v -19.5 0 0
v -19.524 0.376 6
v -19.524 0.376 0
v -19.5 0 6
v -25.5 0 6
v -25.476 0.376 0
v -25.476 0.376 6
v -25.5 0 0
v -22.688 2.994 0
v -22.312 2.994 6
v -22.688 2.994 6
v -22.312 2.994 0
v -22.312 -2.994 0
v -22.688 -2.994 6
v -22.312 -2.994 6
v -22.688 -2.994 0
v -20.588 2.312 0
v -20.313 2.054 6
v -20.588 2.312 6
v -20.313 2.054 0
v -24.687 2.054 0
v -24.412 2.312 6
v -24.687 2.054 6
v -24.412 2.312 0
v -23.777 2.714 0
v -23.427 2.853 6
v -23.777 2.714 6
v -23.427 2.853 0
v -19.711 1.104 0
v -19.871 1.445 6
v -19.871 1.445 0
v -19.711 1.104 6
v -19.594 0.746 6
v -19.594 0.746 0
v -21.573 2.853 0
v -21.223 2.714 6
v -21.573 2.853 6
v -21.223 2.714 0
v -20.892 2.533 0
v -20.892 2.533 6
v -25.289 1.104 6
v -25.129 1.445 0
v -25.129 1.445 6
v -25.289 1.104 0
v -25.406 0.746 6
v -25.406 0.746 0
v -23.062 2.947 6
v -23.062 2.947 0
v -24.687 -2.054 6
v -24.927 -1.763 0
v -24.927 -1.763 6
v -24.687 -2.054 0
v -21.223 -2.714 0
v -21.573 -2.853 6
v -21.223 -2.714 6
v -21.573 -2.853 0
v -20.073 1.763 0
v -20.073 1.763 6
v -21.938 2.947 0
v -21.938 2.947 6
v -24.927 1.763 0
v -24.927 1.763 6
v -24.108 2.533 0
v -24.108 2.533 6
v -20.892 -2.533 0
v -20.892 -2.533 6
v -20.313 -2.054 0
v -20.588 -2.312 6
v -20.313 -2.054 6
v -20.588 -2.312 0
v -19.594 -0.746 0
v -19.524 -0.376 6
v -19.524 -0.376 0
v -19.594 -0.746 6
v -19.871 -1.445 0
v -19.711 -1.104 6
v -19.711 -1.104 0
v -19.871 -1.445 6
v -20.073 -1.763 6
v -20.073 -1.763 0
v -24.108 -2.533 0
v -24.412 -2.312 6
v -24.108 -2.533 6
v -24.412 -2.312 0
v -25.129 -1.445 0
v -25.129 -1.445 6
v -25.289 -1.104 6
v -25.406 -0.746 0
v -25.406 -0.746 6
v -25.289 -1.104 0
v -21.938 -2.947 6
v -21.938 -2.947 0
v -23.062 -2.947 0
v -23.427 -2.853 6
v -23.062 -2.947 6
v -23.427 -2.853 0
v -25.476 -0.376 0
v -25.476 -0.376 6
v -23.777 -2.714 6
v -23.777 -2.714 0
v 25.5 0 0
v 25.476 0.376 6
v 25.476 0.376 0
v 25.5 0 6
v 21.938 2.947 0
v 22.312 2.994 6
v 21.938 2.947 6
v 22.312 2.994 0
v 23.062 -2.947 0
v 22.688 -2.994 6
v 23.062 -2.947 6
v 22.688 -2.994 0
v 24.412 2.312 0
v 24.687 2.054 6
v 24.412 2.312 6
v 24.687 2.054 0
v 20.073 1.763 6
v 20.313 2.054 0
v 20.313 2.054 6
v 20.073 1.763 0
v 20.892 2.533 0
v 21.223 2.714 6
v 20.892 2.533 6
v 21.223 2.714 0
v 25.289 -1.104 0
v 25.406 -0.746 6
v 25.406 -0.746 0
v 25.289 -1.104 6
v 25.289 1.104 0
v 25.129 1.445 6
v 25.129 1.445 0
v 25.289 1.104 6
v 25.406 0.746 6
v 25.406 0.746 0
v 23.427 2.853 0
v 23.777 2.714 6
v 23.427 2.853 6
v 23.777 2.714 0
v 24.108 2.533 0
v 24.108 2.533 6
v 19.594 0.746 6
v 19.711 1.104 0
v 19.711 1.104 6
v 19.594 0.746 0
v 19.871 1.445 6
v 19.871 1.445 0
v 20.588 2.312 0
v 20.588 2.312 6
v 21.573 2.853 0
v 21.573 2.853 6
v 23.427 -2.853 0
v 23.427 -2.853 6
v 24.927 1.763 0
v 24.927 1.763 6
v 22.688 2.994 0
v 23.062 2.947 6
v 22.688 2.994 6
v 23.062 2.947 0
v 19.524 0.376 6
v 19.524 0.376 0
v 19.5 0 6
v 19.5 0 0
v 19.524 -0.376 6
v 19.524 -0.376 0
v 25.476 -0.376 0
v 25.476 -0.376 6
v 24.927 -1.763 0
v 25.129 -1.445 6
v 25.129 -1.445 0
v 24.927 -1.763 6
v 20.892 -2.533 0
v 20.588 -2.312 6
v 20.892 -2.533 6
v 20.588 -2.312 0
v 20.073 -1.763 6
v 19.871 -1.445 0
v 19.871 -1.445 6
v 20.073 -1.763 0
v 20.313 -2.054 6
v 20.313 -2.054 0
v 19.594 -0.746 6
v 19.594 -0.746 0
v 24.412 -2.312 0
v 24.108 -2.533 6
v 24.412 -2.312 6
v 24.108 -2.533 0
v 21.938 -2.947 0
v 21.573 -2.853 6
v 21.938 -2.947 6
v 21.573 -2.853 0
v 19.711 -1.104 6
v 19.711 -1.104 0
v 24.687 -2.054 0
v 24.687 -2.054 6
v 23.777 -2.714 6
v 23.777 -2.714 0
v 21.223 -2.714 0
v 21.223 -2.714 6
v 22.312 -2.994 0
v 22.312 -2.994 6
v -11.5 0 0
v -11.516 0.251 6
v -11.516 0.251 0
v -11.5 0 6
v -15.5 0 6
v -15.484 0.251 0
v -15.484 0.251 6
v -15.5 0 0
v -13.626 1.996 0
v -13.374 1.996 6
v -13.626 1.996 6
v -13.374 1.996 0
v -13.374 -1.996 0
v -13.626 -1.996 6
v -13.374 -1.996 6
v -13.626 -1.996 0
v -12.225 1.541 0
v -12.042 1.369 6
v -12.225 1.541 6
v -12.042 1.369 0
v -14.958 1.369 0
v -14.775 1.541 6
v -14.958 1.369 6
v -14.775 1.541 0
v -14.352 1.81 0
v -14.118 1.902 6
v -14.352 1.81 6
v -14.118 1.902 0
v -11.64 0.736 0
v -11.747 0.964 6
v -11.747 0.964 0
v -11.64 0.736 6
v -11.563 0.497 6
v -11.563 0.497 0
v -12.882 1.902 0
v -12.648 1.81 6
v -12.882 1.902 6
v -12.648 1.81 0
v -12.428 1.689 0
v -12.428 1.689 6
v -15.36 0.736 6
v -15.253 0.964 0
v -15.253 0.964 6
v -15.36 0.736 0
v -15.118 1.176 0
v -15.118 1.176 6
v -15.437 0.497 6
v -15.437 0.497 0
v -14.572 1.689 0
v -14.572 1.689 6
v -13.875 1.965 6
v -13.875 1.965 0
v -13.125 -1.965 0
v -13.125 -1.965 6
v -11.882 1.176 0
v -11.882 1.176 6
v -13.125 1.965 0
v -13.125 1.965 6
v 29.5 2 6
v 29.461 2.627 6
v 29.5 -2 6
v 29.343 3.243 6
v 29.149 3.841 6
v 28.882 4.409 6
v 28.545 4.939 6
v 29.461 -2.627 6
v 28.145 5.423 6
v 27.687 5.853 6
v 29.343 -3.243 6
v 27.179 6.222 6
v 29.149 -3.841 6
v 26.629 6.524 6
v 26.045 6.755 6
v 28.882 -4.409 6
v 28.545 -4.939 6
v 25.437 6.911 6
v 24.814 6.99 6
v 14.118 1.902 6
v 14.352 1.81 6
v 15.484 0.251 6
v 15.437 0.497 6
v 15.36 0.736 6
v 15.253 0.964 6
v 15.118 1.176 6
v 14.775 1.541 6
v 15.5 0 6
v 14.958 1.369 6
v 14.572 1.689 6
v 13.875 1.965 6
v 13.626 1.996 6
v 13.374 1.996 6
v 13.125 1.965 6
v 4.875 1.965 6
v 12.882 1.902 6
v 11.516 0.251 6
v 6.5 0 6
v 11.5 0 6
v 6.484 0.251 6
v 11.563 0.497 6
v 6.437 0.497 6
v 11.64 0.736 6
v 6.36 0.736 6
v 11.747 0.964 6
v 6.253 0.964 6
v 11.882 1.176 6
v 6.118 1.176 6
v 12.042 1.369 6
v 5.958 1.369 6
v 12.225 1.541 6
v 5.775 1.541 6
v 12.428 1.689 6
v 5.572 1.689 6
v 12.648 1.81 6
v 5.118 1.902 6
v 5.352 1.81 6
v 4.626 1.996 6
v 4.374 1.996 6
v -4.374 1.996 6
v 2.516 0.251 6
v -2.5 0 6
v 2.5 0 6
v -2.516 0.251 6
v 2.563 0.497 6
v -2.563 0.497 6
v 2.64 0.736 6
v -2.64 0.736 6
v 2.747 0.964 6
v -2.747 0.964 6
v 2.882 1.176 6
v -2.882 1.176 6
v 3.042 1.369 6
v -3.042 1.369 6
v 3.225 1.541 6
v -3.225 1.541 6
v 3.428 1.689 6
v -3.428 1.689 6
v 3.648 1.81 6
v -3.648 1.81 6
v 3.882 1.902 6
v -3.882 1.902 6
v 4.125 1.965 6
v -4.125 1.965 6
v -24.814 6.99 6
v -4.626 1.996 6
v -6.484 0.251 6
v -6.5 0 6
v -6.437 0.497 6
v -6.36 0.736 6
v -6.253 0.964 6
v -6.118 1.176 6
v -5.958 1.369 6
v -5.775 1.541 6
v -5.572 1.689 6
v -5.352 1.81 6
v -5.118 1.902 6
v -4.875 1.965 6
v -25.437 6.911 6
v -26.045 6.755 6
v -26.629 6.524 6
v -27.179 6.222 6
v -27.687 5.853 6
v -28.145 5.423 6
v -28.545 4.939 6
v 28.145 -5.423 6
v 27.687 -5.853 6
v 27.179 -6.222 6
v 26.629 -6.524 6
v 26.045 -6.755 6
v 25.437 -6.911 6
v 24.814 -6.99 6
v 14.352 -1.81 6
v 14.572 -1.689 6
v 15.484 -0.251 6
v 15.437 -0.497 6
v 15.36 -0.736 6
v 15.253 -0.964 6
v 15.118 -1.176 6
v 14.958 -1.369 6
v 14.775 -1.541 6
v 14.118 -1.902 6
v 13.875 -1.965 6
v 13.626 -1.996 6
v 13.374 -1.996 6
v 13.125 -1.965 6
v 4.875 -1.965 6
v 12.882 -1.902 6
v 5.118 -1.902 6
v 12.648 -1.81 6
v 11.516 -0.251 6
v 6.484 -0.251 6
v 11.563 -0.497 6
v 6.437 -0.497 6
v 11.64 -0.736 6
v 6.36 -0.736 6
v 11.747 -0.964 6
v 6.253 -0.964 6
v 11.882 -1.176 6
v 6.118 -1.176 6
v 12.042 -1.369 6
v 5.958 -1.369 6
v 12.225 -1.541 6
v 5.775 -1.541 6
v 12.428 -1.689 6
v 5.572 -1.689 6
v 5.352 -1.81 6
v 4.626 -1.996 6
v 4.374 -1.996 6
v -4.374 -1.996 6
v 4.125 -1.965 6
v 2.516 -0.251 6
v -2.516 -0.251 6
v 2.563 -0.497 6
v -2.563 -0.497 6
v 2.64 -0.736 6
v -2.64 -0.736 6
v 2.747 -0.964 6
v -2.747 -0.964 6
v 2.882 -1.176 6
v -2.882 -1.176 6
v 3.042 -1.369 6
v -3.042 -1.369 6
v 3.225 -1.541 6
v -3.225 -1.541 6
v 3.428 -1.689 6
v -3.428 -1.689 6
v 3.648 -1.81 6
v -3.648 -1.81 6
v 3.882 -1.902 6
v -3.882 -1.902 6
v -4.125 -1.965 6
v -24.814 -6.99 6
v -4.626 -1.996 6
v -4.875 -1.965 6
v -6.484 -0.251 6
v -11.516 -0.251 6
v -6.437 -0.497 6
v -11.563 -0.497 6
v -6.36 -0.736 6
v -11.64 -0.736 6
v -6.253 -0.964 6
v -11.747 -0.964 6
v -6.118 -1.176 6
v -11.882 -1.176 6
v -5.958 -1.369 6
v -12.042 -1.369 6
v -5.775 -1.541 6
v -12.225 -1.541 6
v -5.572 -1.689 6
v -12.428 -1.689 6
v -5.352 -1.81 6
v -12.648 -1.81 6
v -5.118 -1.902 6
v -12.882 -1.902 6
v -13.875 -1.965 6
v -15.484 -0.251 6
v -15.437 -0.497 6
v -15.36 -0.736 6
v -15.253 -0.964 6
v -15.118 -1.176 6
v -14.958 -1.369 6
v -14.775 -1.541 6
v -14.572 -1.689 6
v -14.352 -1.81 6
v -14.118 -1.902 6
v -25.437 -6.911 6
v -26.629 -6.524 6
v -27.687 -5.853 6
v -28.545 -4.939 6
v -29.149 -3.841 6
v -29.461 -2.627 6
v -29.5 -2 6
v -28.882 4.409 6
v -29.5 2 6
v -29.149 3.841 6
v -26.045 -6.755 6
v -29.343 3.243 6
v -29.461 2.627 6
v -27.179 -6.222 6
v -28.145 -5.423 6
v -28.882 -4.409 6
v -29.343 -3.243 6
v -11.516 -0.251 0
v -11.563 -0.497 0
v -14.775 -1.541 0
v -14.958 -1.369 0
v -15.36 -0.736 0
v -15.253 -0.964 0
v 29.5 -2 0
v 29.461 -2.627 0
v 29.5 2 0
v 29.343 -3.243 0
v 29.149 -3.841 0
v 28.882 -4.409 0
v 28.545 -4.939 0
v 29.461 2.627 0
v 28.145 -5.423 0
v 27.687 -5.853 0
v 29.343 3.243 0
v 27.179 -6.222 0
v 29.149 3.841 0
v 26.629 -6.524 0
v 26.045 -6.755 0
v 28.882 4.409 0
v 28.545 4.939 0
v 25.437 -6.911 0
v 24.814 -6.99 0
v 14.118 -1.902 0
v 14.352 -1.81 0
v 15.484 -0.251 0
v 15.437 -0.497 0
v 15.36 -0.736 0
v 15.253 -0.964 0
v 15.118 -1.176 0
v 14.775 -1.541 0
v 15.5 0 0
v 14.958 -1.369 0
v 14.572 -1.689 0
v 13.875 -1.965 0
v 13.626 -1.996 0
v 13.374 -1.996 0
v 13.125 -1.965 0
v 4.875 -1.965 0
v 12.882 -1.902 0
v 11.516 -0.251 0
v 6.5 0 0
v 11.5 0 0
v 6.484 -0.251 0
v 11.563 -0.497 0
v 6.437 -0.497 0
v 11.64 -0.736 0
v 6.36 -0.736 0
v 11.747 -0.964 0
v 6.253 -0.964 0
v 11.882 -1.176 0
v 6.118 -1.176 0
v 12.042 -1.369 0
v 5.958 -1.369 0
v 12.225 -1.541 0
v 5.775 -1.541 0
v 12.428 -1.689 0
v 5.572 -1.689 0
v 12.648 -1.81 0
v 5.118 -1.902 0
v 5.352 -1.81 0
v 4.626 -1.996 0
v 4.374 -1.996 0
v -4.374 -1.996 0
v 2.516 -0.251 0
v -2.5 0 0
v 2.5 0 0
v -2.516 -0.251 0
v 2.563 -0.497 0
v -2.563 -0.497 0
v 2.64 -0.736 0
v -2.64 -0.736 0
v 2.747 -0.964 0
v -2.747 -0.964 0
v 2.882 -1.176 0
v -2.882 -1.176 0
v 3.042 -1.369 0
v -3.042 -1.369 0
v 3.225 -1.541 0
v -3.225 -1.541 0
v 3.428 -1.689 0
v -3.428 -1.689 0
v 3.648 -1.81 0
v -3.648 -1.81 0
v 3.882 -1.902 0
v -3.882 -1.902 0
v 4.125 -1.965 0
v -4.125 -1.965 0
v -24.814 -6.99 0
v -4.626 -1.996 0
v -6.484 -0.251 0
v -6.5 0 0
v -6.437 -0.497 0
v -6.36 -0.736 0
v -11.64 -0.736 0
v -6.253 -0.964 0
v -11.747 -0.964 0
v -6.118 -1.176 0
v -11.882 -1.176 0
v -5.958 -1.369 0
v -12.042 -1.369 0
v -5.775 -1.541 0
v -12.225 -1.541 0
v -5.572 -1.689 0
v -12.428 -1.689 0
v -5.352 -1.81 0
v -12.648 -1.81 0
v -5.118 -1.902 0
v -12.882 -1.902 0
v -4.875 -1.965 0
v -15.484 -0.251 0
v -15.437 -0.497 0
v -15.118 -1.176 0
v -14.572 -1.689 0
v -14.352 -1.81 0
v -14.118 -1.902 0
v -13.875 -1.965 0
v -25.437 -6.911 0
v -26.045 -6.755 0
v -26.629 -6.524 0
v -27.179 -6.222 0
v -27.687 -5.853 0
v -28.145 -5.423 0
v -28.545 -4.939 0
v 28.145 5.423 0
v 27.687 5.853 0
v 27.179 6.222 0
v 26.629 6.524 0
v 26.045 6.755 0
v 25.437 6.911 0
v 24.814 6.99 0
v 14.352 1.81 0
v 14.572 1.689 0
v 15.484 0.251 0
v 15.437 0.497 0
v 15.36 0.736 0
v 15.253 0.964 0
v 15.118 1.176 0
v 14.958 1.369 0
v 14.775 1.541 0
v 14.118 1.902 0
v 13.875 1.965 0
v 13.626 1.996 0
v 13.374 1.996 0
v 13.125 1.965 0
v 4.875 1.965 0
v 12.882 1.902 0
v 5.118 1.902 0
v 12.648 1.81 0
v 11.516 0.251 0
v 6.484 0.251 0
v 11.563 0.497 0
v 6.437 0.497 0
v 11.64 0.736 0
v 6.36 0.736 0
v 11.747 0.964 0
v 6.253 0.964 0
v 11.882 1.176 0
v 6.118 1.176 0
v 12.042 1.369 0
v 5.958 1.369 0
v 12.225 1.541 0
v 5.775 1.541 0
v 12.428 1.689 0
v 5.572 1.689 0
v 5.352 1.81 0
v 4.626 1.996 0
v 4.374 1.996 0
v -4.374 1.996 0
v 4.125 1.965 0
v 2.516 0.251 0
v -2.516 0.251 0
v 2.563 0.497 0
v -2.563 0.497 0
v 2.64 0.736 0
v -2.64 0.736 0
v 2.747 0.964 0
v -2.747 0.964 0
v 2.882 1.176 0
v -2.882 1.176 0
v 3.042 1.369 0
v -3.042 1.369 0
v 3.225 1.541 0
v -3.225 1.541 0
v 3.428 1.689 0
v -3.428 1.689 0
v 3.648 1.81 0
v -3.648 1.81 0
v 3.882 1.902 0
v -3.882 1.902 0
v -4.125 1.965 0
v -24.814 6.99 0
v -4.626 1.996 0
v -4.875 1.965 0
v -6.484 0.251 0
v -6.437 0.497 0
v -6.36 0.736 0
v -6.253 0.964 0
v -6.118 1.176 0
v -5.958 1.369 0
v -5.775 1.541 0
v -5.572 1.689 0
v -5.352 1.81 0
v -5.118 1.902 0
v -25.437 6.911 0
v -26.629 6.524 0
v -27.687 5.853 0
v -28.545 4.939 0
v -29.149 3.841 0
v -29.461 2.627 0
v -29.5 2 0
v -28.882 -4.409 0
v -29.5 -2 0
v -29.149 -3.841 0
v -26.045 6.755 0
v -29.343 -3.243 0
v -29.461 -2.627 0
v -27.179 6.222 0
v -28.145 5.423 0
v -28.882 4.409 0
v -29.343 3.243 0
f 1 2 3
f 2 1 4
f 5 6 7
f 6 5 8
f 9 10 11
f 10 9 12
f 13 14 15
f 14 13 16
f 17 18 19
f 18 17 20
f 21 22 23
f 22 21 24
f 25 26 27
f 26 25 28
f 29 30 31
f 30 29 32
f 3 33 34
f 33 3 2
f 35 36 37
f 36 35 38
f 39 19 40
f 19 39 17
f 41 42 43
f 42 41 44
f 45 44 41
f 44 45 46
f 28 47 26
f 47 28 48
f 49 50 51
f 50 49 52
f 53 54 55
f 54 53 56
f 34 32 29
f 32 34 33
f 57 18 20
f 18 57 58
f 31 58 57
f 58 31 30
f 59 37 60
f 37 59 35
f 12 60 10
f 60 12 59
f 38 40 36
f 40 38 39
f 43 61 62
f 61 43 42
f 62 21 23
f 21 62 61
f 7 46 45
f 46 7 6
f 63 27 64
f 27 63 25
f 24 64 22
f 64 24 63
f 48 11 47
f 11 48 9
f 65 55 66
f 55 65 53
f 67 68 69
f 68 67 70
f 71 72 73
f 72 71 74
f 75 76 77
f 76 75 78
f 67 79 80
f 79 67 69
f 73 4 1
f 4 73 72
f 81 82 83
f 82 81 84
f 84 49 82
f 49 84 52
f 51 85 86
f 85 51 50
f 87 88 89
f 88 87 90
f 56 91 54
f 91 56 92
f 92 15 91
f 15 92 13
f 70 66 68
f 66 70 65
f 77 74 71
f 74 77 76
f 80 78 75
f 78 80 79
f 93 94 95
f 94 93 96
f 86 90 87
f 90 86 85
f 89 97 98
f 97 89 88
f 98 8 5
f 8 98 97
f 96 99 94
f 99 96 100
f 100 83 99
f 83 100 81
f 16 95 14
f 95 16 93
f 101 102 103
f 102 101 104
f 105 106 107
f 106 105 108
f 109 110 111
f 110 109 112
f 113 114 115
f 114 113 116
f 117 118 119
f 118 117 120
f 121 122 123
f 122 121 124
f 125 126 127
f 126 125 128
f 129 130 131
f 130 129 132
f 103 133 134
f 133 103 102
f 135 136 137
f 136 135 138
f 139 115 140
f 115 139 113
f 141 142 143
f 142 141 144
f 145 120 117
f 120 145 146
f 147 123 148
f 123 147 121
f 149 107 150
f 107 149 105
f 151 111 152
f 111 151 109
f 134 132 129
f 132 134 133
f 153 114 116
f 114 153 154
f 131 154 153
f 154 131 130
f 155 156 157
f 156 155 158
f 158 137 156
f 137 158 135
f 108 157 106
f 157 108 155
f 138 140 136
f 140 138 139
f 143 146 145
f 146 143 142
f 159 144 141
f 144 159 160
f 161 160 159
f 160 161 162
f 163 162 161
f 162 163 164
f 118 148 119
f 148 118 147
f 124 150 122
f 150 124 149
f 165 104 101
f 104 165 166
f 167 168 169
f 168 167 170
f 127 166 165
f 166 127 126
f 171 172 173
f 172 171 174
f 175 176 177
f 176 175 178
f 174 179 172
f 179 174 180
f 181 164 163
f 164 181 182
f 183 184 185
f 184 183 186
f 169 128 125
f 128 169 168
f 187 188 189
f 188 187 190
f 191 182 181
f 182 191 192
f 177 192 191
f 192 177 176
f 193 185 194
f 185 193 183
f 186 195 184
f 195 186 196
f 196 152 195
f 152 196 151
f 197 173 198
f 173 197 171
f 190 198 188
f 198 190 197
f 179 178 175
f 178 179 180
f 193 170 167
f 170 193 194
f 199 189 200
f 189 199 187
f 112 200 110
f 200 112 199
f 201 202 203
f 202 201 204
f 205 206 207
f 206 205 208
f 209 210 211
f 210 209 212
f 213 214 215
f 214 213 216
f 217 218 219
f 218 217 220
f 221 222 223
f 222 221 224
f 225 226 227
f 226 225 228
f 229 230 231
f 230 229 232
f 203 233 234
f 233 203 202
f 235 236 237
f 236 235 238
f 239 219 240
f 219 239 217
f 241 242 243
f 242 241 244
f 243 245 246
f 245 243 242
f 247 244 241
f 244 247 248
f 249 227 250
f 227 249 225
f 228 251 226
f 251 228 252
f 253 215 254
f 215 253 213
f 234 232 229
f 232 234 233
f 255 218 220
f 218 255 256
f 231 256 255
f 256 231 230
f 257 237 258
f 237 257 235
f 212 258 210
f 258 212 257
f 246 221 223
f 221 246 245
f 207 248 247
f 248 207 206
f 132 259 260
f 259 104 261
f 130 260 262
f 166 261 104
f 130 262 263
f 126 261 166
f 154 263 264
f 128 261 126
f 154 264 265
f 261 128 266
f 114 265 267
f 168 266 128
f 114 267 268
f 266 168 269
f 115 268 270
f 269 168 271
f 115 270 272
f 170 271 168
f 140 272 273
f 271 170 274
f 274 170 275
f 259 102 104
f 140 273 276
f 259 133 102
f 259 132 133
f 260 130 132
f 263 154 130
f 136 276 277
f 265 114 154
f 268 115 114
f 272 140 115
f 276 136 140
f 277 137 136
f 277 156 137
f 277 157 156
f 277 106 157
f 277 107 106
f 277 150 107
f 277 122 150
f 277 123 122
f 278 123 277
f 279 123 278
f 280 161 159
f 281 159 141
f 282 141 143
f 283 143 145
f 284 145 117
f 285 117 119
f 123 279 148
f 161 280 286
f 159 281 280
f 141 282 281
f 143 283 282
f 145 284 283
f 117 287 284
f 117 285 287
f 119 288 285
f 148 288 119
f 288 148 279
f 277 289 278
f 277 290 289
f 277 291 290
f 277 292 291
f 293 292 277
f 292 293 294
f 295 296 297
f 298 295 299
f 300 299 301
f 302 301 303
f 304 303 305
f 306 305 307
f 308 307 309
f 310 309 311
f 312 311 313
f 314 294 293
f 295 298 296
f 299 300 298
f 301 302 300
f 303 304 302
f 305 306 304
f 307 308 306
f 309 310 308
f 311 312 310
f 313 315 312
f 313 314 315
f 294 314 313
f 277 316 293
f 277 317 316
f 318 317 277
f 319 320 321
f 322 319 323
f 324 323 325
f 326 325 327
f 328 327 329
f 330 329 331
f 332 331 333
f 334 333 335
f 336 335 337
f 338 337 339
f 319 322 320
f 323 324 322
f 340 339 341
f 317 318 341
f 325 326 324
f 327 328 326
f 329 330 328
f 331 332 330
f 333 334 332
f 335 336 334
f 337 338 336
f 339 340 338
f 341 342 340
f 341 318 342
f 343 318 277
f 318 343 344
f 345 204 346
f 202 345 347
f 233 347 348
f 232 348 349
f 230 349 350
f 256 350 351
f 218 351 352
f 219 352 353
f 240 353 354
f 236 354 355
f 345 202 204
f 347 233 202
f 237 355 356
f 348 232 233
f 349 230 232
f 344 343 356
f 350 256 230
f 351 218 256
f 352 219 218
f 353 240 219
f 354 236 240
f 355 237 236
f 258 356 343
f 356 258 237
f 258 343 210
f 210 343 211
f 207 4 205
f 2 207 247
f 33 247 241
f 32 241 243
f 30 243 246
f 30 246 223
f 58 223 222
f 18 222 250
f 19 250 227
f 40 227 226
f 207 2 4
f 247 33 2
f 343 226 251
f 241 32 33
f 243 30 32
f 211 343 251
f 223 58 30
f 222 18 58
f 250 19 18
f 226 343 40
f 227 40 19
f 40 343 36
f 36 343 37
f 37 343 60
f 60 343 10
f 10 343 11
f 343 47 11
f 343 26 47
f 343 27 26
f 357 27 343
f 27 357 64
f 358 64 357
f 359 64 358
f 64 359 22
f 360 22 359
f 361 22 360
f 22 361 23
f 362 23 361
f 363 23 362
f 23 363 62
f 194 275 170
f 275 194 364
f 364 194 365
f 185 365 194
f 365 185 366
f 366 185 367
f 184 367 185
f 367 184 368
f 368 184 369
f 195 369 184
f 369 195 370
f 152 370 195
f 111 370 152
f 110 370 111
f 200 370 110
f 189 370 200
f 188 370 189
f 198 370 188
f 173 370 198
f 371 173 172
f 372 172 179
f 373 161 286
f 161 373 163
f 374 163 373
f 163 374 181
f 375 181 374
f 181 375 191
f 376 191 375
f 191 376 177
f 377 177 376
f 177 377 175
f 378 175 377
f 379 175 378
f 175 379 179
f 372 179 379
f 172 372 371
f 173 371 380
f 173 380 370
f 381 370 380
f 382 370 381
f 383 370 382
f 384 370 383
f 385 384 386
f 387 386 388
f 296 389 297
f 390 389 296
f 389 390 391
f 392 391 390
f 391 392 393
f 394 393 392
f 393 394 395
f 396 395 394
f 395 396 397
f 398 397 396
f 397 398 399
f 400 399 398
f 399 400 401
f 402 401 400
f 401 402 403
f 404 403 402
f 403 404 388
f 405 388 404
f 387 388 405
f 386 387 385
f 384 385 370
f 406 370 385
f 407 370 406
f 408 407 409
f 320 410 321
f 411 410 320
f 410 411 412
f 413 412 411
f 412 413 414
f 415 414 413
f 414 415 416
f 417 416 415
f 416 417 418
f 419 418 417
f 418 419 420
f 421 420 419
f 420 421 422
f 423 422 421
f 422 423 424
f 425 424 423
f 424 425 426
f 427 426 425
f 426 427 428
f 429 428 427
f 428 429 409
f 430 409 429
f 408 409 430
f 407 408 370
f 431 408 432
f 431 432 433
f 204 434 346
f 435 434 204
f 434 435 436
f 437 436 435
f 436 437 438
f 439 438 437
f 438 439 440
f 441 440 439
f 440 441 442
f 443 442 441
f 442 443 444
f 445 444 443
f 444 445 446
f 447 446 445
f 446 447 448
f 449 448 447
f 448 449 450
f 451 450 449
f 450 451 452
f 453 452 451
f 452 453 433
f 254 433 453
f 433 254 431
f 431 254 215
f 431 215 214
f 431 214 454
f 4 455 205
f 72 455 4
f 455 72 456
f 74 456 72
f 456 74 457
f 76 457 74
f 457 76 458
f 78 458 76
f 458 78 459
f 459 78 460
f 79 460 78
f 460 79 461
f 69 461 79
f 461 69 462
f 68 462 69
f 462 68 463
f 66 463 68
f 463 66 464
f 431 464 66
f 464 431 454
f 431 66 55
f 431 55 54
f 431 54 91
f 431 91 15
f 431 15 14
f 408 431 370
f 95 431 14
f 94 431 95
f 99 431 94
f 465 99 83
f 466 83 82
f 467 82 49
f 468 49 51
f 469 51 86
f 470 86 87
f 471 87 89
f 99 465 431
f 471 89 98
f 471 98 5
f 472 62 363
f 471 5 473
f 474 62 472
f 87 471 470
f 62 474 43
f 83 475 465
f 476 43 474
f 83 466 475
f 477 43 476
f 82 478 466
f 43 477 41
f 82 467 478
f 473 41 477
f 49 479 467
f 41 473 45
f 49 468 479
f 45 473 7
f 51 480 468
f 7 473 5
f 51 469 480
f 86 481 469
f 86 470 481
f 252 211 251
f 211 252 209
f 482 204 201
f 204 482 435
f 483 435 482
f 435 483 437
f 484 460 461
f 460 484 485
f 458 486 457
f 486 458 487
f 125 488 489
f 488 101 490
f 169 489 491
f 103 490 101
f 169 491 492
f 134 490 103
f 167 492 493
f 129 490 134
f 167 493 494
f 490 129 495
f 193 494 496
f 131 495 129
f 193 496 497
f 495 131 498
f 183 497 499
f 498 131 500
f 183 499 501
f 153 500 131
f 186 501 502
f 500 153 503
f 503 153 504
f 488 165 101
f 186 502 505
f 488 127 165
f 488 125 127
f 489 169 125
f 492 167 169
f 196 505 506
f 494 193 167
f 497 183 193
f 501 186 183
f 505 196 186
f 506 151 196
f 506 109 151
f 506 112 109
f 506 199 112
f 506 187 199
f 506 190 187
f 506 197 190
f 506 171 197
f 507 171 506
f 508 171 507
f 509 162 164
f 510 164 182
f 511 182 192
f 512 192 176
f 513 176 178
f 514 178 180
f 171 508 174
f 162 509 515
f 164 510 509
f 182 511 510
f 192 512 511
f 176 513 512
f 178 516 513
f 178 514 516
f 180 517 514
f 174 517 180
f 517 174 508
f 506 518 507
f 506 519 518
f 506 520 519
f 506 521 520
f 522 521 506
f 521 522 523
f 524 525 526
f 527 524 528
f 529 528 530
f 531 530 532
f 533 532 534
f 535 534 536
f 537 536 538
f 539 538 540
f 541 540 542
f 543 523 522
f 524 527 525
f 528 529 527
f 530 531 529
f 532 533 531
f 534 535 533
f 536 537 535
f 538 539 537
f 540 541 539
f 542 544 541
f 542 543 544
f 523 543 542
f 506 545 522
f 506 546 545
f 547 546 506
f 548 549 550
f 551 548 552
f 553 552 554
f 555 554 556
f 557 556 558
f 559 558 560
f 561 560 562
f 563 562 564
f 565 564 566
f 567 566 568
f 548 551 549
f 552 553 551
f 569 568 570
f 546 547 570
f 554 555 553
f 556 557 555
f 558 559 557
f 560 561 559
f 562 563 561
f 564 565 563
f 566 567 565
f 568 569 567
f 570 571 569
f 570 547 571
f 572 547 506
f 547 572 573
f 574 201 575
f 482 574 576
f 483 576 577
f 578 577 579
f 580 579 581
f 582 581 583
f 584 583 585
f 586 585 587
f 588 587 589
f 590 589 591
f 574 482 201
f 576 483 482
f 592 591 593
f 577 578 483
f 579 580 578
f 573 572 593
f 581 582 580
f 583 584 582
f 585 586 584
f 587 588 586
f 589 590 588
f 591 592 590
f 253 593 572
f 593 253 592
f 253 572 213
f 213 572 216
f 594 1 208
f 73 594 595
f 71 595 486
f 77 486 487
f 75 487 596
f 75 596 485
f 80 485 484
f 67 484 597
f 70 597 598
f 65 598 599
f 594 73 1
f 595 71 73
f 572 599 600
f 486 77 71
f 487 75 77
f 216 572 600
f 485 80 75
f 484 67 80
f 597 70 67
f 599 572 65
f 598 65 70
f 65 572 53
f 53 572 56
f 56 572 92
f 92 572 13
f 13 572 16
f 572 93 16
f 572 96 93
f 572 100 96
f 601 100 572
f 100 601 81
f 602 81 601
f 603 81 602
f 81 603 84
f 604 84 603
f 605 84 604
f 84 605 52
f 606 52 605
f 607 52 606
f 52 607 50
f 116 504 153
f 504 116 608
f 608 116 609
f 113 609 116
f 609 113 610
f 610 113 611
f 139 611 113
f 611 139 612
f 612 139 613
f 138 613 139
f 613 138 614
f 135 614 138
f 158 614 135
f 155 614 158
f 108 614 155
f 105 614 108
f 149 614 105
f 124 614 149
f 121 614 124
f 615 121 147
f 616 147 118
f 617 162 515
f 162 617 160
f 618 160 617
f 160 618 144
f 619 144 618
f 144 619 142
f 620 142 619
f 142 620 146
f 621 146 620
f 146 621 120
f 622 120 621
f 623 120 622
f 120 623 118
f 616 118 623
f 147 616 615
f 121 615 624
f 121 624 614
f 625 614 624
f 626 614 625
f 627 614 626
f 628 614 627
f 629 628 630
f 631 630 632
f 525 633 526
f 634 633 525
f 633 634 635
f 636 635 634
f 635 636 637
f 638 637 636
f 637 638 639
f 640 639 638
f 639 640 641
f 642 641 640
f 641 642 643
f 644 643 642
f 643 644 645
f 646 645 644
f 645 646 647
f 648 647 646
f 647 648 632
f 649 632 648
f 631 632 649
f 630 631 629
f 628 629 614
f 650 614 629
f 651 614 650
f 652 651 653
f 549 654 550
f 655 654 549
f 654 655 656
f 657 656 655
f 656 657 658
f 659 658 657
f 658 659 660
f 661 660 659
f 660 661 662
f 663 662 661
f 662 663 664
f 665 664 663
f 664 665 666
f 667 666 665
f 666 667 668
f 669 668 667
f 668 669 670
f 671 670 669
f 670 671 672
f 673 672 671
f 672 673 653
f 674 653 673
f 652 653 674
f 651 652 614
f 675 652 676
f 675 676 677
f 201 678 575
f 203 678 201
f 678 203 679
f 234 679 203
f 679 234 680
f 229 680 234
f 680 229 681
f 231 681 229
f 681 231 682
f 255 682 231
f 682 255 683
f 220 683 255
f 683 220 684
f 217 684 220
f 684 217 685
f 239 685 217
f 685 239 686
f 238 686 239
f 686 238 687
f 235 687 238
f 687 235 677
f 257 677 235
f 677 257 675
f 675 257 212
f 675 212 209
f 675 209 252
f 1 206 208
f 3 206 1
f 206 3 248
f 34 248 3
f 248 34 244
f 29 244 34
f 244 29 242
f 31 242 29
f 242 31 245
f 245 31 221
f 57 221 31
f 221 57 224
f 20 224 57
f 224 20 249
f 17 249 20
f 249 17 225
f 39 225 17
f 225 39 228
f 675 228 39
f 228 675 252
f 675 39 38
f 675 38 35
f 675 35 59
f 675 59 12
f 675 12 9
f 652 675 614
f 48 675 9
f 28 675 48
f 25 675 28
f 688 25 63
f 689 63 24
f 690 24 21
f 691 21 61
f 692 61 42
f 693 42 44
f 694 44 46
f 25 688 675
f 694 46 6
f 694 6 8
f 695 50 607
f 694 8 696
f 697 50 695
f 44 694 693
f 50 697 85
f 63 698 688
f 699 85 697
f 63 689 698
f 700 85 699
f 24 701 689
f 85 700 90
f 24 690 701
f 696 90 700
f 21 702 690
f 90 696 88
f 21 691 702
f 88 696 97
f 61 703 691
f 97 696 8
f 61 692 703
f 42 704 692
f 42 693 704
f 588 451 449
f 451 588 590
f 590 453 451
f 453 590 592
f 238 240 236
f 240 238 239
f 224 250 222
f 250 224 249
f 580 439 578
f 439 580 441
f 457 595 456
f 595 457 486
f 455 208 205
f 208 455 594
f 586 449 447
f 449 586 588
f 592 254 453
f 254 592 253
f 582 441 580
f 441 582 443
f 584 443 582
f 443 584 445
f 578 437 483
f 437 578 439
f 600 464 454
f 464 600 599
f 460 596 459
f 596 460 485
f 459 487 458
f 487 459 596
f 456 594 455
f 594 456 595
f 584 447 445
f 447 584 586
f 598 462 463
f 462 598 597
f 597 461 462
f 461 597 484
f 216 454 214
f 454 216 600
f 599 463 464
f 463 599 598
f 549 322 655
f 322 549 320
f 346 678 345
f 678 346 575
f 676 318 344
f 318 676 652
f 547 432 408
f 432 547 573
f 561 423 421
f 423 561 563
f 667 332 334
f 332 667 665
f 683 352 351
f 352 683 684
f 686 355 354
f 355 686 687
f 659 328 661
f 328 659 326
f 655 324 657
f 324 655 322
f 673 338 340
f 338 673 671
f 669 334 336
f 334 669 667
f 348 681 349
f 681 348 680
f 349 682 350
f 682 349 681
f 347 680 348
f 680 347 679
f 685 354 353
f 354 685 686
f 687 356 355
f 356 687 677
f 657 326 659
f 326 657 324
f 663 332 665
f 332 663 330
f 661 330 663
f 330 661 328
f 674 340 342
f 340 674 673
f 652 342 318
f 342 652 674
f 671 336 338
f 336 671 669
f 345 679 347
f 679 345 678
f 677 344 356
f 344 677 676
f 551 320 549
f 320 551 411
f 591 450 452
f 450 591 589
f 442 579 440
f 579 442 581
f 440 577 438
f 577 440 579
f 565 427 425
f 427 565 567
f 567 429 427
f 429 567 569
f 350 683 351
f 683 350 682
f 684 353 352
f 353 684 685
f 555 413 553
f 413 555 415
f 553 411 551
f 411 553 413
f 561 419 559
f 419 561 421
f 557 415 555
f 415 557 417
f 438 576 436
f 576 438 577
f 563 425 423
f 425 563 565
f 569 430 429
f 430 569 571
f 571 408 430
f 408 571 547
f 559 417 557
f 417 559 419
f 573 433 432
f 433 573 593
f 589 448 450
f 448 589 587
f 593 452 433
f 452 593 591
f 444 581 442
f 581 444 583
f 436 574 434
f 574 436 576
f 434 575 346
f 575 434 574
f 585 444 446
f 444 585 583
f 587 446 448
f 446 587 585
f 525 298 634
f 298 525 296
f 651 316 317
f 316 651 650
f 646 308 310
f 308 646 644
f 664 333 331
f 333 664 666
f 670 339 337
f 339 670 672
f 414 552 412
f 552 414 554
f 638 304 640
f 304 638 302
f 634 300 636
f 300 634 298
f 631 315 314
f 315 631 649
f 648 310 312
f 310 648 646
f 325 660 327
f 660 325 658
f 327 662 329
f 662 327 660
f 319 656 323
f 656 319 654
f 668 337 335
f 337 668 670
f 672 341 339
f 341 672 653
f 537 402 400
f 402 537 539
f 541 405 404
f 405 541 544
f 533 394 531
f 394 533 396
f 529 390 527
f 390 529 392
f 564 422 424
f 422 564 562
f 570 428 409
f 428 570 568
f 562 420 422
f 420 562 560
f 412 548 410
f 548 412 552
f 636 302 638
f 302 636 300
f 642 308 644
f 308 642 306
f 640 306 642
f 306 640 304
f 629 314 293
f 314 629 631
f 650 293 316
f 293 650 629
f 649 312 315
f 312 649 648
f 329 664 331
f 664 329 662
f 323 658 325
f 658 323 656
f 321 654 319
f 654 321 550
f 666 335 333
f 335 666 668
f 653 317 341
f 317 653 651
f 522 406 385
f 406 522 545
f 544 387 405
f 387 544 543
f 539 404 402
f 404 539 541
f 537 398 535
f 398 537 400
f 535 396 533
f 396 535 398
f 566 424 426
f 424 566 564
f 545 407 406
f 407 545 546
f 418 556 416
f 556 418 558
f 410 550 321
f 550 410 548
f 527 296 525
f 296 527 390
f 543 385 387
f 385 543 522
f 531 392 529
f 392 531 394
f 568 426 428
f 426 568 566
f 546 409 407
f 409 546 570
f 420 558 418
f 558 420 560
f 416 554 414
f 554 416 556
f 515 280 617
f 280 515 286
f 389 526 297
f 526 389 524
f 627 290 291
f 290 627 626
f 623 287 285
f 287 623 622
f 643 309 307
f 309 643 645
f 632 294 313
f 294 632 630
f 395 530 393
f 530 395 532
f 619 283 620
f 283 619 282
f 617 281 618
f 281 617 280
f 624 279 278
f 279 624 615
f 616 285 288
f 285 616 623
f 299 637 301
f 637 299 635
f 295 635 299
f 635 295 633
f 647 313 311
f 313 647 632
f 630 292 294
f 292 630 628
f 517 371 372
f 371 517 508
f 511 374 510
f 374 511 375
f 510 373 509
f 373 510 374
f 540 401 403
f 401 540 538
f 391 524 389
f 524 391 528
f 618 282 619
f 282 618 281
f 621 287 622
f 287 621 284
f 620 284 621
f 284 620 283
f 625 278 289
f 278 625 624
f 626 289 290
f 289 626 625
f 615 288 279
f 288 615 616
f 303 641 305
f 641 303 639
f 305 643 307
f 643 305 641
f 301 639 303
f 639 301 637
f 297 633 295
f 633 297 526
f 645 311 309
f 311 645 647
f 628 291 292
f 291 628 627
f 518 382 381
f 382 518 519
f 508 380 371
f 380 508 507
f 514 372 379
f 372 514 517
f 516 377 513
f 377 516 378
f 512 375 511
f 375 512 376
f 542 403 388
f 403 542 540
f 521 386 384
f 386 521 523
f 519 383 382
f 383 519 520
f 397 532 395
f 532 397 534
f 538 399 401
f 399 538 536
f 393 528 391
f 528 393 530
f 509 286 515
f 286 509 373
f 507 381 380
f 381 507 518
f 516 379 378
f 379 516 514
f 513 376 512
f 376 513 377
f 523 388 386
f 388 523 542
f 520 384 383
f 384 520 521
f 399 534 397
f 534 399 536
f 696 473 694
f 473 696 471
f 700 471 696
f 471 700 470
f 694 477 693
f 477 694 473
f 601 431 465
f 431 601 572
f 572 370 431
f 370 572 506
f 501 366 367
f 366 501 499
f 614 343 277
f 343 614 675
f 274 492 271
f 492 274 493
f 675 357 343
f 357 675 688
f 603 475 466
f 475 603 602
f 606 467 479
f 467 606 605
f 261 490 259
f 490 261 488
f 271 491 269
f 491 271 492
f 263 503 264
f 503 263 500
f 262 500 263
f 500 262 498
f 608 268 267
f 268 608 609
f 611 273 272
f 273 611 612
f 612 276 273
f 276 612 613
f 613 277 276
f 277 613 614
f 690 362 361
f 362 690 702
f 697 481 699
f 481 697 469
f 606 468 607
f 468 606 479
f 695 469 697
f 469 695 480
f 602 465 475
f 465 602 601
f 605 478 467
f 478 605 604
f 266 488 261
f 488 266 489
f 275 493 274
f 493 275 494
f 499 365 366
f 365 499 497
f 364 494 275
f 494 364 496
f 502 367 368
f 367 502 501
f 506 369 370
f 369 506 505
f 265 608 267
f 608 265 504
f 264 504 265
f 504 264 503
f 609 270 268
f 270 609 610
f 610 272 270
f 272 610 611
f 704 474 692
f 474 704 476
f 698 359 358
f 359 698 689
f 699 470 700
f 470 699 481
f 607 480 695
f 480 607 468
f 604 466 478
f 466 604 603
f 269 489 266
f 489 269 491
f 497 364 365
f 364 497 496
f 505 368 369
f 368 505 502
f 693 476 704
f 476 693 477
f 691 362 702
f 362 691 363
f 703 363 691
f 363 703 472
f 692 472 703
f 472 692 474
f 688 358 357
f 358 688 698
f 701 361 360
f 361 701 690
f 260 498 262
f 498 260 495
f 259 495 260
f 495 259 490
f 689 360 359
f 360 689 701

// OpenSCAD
$fn = 50;


difference() {
	union() {
		hull() {
			translate(v = [-24.5000000000, 2.0000000000, 0]) {
				cylinder(h = 6, r = 5);
			}
			translate(v = [24.5000000000, 2.0000000000, 0]) {
				cylinder(h = 6, r = 5);
			}
			translate(v = [-24.5000000000, -2.0000000000, 0]) {
				cylinder(h = 6, r = 5);
			}
			translate(v = [24.5000000000, -2.0000000000, 0]) {
				cylinder(h = 6, r = 5);
			}
		}
	}
	union() {
		#translate(v = [-22.5000000000, 0.0000000000, 0]) {
			cylinder(h = 6, r = 3.0000000000);
		}
		#translate(v = [22.5000000000, 0.0000000000, 0]) {
			cylinder(h = 6, r = 3.0000000000);
		}
		#translate(v = [-22.5000000000, 0.0000000000, -100.0000000000]) {
			cylinder(h = 200, r = 3.0000000000);
		}
		#translate(v = [-22.5000000000, 0.0000000000, -100.0000000000]) {
			cylinder(h = 200, r = 3.0000000000);
		}
		#translate(v = [22.5000000000, 0.0000000000, -100.0000000000]) {
			cylinder(h = 200, r = 3.0000000000);
		}
		#translate(v = [22.5000000000, 0.0000000000, -100.0000000000]) {
			cylinder(h = 200, r = 3.0000000000);
		}
		#translate(v = [-22.5000000000, 0.0000000000, 0]) {
			cylinder(h = 6, r = 1.5000000000);
		}
		#translate(v = [22.5000000000, 0.0000000000, 0]) {
			cylinder(h = 6, r = 1.5000000000);
		}
		#translate(v = [-22.5000000000, 0.0000000000, 0]) {
			cylinder(h = 6, r = 1.5000000000);
		}
		#translate(v = [22.5000000000, 0.0000000000, 0]) {
			cylinder(h = 6, r = 1.5000000000);
		}
		#translate(v = [-22.5000000000, 0.0000000000, 0]) {
			cylinder(h = 6, r = 1.5000000000);
		}
		#translate(v = [22.5000000000, 0.0000000000, 0]) {
			cylinder(h = 6, r = 1.5000000000);
		}
		#translate(v = [-13.5000000000, 0, 0]) {
			cylinder(h = 6, r = 2.0000000000);
		}
		#translate(v = [-4.5000000000, 0, 0]) {
			cylinder(h = 6, r = 2.0000000000);
		}
		#translate(v = [4.5000000000, 0, 0]) {
			cylinder(h = 6, r = 2.0000000000);
		}
		#translate(v = [13.5000000000, 0, 0]) {
			cylinder(h = 6, r = 2.0000000000);
		}
	}
}
